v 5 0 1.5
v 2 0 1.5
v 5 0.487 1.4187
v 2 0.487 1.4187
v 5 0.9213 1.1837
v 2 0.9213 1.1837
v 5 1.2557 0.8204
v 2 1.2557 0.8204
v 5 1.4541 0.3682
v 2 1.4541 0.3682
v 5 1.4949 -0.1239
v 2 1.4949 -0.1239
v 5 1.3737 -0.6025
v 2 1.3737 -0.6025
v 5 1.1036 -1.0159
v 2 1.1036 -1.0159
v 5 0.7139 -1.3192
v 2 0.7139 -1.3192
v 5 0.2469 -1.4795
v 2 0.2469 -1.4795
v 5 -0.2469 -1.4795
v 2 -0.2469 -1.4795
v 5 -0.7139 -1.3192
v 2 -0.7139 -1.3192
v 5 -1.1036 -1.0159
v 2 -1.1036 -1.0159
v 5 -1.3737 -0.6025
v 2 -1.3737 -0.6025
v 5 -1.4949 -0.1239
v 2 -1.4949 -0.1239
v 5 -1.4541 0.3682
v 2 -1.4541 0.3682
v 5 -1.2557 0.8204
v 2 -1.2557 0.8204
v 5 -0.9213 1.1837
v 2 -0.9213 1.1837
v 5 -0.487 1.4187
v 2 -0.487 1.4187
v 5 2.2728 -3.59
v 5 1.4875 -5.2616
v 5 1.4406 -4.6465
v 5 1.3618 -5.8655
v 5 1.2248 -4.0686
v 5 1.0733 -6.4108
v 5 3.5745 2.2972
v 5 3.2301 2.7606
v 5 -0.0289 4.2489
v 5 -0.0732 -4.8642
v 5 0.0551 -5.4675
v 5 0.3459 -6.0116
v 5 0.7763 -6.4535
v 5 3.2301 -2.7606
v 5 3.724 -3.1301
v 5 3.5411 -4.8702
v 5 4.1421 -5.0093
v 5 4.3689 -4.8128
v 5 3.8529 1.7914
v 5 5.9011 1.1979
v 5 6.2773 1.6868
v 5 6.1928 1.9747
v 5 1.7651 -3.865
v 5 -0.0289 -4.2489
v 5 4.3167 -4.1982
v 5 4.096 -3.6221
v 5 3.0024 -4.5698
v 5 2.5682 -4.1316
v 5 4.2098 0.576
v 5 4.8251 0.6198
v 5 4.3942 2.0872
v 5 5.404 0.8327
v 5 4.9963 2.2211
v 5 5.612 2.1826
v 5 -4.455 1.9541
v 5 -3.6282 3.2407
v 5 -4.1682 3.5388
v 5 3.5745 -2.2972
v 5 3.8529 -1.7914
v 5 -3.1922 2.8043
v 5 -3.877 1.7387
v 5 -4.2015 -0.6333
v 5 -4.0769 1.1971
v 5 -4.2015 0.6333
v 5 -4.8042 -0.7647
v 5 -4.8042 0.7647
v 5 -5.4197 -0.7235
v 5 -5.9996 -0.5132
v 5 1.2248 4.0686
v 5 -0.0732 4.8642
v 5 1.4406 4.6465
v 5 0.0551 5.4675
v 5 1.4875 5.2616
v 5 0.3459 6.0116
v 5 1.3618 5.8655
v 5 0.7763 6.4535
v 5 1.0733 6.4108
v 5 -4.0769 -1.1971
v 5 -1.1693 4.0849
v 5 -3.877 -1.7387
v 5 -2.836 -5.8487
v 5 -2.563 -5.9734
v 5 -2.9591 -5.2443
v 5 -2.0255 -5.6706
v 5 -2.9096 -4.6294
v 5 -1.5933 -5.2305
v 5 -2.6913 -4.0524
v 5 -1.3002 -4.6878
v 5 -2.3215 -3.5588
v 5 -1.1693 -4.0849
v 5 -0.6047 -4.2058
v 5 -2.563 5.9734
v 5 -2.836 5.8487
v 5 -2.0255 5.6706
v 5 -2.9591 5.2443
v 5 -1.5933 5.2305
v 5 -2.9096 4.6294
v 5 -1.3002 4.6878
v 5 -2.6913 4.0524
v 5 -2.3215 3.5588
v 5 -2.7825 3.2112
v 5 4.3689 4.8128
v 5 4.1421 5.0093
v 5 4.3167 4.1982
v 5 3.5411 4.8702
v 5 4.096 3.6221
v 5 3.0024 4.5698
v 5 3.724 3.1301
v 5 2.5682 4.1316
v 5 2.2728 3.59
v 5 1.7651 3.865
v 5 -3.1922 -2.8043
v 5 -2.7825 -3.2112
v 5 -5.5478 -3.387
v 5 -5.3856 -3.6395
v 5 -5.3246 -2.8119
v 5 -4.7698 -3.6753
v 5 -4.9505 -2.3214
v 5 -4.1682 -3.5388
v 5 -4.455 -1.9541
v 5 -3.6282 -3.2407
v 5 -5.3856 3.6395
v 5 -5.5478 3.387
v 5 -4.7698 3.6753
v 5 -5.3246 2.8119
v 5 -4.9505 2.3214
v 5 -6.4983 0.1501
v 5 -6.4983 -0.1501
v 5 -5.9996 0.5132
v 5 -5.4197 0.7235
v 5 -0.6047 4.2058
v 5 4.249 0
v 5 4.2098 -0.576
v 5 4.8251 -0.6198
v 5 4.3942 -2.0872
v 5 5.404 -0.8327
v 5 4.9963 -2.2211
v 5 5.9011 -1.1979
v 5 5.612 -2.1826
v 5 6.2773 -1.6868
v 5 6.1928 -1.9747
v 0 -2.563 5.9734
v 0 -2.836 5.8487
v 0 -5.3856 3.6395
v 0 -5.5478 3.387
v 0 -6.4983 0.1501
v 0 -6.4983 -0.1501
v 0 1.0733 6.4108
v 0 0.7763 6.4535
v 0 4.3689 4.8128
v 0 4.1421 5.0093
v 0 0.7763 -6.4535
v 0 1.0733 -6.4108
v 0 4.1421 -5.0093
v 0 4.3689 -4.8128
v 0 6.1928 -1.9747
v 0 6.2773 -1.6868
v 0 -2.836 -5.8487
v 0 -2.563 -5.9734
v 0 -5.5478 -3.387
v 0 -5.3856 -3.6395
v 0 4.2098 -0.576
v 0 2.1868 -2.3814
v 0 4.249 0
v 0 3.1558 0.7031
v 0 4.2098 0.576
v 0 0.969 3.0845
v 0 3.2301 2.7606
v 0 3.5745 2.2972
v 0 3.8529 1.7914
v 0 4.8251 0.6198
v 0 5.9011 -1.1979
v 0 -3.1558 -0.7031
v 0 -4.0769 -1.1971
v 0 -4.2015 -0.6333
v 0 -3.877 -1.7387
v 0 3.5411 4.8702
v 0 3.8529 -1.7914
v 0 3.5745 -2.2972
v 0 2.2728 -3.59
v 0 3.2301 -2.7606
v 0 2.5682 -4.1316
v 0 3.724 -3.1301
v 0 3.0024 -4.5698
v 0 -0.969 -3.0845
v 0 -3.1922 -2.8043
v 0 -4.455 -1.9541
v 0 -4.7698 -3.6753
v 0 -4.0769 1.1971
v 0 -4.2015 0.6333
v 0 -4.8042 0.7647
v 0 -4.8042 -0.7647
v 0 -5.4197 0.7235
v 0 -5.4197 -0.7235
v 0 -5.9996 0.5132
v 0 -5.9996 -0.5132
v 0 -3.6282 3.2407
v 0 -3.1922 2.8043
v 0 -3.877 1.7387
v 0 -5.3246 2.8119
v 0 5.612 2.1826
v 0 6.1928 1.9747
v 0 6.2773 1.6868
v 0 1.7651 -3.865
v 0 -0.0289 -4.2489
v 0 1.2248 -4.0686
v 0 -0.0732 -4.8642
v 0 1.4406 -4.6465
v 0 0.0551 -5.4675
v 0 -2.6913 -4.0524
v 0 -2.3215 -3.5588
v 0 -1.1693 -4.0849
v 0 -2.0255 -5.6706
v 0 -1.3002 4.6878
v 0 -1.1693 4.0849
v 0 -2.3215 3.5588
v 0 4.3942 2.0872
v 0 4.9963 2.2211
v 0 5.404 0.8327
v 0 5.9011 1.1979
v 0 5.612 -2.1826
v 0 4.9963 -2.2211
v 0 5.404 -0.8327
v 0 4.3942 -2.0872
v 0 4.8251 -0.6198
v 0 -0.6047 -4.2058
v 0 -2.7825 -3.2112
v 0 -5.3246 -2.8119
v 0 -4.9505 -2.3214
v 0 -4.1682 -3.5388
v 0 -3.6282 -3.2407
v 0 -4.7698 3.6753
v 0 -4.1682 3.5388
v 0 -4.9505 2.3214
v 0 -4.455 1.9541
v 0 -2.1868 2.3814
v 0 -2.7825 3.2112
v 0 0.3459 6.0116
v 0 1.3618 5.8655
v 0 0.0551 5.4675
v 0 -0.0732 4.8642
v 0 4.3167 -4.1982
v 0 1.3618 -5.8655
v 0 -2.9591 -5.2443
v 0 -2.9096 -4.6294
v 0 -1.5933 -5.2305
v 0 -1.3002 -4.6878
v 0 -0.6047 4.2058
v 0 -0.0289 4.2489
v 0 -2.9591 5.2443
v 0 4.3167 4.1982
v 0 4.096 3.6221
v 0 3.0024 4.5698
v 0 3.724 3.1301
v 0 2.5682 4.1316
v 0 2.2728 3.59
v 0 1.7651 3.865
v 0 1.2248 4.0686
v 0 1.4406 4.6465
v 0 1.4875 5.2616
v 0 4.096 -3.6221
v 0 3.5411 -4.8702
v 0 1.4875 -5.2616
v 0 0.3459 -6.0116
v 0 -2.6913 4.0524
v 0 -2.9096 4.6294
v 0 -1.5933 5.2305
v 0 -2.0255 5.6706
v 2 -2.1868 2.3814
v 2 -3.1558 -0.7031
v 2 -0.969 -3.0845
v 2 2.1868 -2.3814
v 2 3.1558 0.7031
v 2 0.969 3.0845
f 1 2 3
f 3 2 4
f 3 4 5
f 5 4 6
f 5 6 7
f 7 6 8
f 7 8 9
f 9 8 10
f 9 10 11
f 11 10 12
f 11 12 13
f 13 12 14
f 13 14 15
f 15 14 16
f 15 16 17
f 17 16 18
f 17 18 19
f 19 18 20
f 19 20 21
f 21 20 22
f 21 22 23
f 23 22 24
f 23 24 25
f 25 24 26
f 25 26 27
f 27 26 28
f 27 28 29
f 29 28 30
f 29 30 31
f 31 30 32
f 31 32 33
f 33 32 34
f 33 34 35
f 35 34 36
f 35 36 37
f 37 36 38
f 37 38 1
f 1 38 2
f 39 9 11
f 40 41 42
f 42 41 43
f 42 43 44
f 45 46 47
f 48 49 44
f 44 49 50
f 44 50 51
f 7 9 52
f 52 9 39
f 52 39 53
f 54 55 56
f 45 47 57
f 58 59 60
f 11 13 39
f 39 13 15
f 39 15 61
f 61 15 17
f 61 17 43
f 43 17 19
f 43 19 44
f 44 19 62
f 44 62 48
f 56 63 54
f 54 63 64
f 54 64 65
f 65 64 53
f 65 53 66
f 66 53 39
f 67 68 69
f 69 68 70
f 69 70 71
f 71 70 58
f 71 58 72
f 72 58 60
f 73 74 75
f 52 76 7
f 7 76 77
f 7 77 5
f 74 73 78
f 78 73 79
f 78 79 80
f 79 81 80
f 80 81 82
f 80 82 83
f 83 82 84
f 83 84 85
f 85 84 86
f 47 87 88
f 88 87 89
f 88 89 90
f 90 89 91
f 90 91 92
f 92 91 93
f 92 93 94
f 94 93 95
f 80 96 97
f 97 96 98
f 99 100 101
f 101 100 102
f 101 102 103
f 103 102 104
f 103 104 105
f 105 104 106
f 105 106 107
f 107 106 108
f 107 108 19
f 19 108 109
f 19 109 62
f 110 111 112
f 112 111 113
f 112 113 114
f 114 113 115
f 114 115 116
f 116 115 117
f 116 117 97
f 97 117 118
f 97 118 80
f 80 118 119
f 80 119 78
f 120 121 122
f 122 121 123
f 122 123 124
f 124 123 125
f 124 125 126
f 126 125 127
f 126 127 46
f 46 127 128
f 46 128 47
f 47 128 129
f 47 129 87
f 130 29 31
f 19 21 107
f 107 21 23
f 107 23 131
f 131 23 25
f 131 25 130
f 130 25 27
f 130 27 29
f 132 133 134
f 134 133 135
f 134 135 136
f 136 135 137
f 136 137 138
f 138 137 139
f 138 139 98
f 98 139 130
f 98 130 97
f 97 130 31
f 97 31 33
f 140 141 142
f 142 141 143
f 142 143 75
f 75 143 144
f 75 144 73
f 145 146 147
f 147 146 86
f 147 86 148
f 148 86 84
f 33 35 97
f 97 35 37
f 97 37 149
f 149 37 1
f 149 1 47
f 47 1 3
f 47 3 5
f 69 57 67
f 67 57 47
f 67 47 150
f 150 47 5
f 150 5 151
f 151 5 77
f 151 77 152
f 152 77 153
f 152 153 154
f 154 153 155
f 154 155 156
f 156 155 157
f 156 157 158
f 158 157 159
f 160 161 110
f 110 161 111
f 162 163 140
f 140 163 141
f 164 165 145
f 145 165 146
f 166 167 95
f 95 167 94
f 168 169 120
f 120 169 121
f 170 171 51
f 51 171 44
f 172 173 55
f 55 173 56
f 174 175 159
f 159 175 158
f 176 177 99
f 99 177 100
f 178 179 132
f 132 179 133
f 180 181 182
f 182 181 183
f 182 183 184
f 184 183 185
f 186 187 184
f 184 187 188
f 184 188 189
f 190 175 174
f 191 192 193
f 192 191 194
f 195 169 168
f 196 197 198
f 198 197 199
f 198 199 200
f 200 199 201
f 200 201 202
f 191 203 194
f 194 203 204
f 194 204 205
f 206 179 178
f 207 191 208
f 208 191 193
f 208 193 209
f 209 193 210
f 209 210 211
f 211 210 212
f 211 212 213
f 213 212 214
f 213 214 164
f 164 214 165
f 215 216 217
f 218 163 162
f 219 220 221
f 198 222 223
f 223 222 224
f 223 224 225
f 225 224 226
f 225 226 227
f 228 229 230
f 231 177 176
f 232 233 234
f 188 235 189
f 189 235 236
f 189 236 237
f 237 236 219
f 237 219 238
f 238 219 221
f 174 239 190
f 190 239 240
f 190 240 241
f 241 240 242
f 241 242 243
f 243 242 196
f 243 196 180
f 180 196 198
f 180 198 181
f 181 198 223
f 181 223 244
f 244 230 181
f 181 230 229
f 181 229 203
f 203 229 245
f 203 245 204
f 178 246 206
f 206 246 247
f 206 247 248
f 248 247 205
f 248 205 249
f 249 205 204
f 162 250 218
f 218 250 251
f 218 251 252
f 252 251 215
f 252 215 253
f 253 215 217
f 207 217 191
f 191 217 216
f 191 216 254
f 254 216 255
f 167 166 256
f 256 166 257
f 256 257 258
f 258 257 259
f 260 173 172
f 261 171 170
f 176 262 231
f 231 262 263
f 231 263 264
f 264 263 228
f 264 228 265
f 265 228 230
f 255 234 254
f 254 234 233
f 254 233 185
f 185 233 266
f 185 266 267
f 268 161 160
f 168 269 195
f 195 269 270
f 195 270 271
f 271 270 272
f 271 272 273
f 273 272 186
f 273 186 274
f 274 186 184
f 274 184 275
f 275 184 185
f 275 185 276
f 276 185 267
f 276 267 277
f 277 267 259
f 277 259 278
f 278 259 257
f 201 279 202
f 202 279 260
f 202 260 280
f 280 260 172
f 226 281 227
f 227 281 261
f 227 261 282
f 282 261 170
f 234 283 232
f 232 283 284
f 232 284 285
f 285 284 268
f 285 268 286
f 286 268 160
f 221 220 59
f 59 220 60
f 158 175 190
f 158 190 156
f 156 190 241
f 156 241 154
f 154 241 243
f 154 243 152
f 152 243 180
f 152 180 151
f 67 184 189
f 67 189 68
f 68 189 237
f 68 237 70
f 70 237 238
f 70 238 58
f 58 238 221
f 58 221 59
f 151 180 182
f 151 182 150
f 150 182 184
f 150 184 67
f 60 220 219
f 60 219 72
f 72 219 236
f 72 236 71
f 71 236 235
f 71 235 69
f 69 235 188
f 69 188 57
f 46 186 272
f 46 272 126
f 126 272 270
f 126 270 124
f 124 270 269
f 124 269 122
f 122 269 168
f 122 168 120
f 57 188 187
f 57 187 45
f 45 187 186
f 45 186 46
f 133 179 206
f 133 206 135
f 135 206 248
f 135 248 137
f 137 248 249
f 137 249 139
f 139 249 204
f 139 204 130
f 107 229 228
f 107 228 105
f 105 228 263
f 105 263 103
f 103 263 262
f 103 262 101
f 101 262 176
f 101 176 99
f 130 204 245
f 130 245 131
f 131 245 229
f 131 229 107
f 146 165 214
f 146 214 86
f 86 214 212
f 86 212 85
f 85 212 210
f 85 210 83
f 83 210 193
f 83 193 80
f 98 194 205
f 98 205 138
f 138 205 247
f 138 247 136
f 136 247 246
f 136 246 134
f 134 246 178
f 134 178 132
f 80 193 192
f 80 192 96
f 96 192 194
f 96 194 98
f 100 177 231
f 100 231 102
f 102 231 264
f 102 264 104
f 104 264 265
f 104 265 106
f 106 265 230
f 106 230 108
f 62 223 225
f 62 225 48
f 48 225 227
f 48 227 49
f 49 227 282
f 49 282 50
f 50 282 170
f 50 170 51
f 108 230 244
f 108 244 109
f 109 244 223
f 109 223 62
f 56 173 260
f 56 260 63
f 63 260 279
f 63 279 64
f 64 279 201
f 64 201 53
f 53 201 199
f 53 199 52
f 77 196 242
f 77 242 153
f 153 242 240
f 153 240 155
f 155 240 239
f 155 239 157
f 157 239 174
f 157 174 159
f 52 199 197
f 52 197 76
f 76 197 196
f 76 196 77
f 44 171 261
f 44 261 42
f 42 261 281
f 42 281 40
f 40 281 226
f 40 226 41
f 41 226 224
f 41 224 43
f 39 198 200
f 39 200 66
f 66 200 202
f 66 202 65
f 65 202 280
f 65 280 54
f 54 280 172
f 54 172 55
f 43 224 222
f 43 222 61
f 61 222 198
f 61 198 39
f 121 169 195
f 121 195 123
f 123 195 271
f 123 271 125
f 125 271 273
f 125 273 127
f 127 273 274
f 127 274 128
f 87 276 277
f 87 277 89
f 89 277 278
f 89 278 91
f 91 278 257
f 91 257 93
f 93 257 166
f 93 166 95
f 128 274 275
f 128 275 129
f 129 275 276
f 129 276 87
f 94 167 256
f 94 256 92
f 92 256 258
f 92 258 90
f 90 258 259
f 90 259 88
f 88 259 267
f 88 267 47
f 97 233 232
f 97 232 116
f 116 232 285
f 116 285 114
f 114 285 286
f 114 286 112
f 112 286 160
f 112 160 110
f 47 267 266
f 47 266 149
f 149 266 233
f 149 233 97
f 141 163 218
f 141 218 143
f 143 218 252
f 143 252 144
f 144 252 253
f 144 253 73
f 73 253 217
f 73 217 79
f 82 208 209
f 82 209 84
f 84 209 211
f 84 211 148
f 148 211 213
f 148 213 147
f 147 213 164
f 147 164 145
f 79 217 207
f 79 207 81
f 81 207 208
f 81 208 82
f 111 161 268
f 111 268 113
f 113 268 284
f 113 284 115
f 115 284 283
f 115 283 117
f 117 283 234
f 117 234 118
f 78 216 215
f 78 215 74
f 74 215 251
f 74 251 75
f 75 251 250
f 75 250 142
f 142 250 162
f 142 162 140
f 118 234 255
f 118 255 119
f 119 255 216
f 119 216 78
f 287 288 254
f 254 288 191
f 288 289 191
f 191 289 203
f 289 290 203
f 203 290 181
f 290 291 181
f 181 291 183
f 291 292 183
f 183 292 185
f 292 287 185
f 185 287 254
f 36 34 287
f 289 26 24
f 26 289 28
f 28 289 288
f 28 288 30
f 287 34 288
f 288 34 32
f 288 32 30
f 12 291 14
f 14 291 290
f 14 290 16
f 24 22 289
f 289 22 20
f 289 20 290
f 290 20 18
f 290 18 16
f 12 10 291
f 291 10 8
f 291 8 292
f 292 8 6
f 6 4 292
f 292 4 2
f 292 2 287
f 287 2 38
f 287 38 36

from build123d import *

# Parameters (mm, degrees)
BASPROSKE_W             = 5
BASPROSKE_H             = 6.5
TOOTHCUT_DEPTH          = 11.464224768
TEETHCUTS_COUNT         = 11
TEETHCUTS_ANGLE         = 327.272727273
BORSKE_R                = 1.5
BORE_DEPTH              = 50.0000508
ESQUISSE1_R             = 2.75
ENL_V_MAT_EXTRU_1_DEPTH = 3
ESQUISSE2_R             = 2.75
ESQUISSE2_R_2           = 1.5
BOSS_EXTRU_1_DEPTH      = 3
ENL_V_MAT_EXTRU_2_DEPTH = 2


with BuildPart() as part:
    # BasProSke → Base-Revolve (revolve)
    with BuildSketch(Plane(origin=(0, 0, 0), x_dir=(1, 0, 0), z_dir=(0, 1, 0)), mode=Mode.PRIVATE) as base_revolve_sk:
        with Locations((2.5, 3.25)):
            Rectangle(BASPROSKE_W, BASPROSKE_H)
    revolve(base_revolve_sk.sketch.rotate(Axis((-10, 0, 0), (1, 0, 0)), 180), axis=Axis((-10, 0, 0), (1, 0, 0)))

    # TooCutSke → ToothCut (cut, through all)
    with BuildSketch(Plane(origin=(0, 0, 0), x_dir=(0, 0, -1), z_dir=(1, 0, 0))):
        with BuildLine():
            ThreePointArc((0.576045815, 4.209771041), (0, 4.249), (-0.576045815, 4.209771041))
            ThreePointArc((-0.576045815, 4.209771041), (-0.841371334, 5.420048739), (-1.718652745, 6.295004202))
            ThreePointArc((-1.718652745, 6.295004202), (0, 6.5254), (1.718652745, 6.295004202))
            ThreePointArc((1.718652745, 6.295004202), (0.841371334, 5.420048739), (0.576045815, 4.209771041))
        make_face()
    toothcut = extrude(amount=TOOTHCUT_DEPTH, mode=Mode.SUBTRACT)

    # TeethCuts: ToothCut ×11 about axis
    teethcuts_axis = Axis((-10, 0, 0), (1, 0, 0))
    for i in range(1, TEETHCUTS_COUNT):
        add(toothcut.rotate(teethcuts_axis, i * TEETHCUTS_ANGLE / (TEETHCUTS_COUNT - 1)), mode=Mode.SUBTRACT)

    # BorSke → Bore (cut, symmetric)
    with BuildSketch(Plane(origin=(0, 0, 0), x_dir=(0, 0, -1), z_dir=(1, 0, 0))):
        with Locations(Location((0, 0, 0), (0, 0, 180))):
            Circle(BORSKE_R)
    extrude(amount=BORE_DEPTH, both=True, mode=Mode.SUBTRACT)

    # Esquisse1 → Enlèv. mat.-Extru.1 (cut)
    with BuildSketch(Plane.ZY):
        Circle(ESQUISSE1_R)
    extrude(amount=-ENL_V_MAT_EXTRU_1_DEPTH, mode=Mode.SUBTRACT)

    # Esquisse2 → Boss.-Extru.1 (add)
    with BuildSketch(Plane.ZY.offset(-3)):
        Circle(ESQUISSE2_R)
        Circle(ESQUISSE2_R_2, mode=Mode.SUBTRACT)
    extrude(amount=BOSS_EXTRU_1_DEPTH)

    # Esquisse3 → Enlèv. mat.-Extru.2 (cut)
    with BuildSketch(Plane.ZY):
        Polygon((2.381429268, -2.186807713), (3.084545667, 0.968974387), (0.703116398, 3.1557821), (-2.381429268, 2.186807713), (-3.084545667, -0.968974387), (-0.703116398, -3.1557821), align=None)
    extrude(amount=-ENL_V_MAT_EXTRU_2_DEPTH, mode=Mode.SUBTRACT)


solid = part.part
